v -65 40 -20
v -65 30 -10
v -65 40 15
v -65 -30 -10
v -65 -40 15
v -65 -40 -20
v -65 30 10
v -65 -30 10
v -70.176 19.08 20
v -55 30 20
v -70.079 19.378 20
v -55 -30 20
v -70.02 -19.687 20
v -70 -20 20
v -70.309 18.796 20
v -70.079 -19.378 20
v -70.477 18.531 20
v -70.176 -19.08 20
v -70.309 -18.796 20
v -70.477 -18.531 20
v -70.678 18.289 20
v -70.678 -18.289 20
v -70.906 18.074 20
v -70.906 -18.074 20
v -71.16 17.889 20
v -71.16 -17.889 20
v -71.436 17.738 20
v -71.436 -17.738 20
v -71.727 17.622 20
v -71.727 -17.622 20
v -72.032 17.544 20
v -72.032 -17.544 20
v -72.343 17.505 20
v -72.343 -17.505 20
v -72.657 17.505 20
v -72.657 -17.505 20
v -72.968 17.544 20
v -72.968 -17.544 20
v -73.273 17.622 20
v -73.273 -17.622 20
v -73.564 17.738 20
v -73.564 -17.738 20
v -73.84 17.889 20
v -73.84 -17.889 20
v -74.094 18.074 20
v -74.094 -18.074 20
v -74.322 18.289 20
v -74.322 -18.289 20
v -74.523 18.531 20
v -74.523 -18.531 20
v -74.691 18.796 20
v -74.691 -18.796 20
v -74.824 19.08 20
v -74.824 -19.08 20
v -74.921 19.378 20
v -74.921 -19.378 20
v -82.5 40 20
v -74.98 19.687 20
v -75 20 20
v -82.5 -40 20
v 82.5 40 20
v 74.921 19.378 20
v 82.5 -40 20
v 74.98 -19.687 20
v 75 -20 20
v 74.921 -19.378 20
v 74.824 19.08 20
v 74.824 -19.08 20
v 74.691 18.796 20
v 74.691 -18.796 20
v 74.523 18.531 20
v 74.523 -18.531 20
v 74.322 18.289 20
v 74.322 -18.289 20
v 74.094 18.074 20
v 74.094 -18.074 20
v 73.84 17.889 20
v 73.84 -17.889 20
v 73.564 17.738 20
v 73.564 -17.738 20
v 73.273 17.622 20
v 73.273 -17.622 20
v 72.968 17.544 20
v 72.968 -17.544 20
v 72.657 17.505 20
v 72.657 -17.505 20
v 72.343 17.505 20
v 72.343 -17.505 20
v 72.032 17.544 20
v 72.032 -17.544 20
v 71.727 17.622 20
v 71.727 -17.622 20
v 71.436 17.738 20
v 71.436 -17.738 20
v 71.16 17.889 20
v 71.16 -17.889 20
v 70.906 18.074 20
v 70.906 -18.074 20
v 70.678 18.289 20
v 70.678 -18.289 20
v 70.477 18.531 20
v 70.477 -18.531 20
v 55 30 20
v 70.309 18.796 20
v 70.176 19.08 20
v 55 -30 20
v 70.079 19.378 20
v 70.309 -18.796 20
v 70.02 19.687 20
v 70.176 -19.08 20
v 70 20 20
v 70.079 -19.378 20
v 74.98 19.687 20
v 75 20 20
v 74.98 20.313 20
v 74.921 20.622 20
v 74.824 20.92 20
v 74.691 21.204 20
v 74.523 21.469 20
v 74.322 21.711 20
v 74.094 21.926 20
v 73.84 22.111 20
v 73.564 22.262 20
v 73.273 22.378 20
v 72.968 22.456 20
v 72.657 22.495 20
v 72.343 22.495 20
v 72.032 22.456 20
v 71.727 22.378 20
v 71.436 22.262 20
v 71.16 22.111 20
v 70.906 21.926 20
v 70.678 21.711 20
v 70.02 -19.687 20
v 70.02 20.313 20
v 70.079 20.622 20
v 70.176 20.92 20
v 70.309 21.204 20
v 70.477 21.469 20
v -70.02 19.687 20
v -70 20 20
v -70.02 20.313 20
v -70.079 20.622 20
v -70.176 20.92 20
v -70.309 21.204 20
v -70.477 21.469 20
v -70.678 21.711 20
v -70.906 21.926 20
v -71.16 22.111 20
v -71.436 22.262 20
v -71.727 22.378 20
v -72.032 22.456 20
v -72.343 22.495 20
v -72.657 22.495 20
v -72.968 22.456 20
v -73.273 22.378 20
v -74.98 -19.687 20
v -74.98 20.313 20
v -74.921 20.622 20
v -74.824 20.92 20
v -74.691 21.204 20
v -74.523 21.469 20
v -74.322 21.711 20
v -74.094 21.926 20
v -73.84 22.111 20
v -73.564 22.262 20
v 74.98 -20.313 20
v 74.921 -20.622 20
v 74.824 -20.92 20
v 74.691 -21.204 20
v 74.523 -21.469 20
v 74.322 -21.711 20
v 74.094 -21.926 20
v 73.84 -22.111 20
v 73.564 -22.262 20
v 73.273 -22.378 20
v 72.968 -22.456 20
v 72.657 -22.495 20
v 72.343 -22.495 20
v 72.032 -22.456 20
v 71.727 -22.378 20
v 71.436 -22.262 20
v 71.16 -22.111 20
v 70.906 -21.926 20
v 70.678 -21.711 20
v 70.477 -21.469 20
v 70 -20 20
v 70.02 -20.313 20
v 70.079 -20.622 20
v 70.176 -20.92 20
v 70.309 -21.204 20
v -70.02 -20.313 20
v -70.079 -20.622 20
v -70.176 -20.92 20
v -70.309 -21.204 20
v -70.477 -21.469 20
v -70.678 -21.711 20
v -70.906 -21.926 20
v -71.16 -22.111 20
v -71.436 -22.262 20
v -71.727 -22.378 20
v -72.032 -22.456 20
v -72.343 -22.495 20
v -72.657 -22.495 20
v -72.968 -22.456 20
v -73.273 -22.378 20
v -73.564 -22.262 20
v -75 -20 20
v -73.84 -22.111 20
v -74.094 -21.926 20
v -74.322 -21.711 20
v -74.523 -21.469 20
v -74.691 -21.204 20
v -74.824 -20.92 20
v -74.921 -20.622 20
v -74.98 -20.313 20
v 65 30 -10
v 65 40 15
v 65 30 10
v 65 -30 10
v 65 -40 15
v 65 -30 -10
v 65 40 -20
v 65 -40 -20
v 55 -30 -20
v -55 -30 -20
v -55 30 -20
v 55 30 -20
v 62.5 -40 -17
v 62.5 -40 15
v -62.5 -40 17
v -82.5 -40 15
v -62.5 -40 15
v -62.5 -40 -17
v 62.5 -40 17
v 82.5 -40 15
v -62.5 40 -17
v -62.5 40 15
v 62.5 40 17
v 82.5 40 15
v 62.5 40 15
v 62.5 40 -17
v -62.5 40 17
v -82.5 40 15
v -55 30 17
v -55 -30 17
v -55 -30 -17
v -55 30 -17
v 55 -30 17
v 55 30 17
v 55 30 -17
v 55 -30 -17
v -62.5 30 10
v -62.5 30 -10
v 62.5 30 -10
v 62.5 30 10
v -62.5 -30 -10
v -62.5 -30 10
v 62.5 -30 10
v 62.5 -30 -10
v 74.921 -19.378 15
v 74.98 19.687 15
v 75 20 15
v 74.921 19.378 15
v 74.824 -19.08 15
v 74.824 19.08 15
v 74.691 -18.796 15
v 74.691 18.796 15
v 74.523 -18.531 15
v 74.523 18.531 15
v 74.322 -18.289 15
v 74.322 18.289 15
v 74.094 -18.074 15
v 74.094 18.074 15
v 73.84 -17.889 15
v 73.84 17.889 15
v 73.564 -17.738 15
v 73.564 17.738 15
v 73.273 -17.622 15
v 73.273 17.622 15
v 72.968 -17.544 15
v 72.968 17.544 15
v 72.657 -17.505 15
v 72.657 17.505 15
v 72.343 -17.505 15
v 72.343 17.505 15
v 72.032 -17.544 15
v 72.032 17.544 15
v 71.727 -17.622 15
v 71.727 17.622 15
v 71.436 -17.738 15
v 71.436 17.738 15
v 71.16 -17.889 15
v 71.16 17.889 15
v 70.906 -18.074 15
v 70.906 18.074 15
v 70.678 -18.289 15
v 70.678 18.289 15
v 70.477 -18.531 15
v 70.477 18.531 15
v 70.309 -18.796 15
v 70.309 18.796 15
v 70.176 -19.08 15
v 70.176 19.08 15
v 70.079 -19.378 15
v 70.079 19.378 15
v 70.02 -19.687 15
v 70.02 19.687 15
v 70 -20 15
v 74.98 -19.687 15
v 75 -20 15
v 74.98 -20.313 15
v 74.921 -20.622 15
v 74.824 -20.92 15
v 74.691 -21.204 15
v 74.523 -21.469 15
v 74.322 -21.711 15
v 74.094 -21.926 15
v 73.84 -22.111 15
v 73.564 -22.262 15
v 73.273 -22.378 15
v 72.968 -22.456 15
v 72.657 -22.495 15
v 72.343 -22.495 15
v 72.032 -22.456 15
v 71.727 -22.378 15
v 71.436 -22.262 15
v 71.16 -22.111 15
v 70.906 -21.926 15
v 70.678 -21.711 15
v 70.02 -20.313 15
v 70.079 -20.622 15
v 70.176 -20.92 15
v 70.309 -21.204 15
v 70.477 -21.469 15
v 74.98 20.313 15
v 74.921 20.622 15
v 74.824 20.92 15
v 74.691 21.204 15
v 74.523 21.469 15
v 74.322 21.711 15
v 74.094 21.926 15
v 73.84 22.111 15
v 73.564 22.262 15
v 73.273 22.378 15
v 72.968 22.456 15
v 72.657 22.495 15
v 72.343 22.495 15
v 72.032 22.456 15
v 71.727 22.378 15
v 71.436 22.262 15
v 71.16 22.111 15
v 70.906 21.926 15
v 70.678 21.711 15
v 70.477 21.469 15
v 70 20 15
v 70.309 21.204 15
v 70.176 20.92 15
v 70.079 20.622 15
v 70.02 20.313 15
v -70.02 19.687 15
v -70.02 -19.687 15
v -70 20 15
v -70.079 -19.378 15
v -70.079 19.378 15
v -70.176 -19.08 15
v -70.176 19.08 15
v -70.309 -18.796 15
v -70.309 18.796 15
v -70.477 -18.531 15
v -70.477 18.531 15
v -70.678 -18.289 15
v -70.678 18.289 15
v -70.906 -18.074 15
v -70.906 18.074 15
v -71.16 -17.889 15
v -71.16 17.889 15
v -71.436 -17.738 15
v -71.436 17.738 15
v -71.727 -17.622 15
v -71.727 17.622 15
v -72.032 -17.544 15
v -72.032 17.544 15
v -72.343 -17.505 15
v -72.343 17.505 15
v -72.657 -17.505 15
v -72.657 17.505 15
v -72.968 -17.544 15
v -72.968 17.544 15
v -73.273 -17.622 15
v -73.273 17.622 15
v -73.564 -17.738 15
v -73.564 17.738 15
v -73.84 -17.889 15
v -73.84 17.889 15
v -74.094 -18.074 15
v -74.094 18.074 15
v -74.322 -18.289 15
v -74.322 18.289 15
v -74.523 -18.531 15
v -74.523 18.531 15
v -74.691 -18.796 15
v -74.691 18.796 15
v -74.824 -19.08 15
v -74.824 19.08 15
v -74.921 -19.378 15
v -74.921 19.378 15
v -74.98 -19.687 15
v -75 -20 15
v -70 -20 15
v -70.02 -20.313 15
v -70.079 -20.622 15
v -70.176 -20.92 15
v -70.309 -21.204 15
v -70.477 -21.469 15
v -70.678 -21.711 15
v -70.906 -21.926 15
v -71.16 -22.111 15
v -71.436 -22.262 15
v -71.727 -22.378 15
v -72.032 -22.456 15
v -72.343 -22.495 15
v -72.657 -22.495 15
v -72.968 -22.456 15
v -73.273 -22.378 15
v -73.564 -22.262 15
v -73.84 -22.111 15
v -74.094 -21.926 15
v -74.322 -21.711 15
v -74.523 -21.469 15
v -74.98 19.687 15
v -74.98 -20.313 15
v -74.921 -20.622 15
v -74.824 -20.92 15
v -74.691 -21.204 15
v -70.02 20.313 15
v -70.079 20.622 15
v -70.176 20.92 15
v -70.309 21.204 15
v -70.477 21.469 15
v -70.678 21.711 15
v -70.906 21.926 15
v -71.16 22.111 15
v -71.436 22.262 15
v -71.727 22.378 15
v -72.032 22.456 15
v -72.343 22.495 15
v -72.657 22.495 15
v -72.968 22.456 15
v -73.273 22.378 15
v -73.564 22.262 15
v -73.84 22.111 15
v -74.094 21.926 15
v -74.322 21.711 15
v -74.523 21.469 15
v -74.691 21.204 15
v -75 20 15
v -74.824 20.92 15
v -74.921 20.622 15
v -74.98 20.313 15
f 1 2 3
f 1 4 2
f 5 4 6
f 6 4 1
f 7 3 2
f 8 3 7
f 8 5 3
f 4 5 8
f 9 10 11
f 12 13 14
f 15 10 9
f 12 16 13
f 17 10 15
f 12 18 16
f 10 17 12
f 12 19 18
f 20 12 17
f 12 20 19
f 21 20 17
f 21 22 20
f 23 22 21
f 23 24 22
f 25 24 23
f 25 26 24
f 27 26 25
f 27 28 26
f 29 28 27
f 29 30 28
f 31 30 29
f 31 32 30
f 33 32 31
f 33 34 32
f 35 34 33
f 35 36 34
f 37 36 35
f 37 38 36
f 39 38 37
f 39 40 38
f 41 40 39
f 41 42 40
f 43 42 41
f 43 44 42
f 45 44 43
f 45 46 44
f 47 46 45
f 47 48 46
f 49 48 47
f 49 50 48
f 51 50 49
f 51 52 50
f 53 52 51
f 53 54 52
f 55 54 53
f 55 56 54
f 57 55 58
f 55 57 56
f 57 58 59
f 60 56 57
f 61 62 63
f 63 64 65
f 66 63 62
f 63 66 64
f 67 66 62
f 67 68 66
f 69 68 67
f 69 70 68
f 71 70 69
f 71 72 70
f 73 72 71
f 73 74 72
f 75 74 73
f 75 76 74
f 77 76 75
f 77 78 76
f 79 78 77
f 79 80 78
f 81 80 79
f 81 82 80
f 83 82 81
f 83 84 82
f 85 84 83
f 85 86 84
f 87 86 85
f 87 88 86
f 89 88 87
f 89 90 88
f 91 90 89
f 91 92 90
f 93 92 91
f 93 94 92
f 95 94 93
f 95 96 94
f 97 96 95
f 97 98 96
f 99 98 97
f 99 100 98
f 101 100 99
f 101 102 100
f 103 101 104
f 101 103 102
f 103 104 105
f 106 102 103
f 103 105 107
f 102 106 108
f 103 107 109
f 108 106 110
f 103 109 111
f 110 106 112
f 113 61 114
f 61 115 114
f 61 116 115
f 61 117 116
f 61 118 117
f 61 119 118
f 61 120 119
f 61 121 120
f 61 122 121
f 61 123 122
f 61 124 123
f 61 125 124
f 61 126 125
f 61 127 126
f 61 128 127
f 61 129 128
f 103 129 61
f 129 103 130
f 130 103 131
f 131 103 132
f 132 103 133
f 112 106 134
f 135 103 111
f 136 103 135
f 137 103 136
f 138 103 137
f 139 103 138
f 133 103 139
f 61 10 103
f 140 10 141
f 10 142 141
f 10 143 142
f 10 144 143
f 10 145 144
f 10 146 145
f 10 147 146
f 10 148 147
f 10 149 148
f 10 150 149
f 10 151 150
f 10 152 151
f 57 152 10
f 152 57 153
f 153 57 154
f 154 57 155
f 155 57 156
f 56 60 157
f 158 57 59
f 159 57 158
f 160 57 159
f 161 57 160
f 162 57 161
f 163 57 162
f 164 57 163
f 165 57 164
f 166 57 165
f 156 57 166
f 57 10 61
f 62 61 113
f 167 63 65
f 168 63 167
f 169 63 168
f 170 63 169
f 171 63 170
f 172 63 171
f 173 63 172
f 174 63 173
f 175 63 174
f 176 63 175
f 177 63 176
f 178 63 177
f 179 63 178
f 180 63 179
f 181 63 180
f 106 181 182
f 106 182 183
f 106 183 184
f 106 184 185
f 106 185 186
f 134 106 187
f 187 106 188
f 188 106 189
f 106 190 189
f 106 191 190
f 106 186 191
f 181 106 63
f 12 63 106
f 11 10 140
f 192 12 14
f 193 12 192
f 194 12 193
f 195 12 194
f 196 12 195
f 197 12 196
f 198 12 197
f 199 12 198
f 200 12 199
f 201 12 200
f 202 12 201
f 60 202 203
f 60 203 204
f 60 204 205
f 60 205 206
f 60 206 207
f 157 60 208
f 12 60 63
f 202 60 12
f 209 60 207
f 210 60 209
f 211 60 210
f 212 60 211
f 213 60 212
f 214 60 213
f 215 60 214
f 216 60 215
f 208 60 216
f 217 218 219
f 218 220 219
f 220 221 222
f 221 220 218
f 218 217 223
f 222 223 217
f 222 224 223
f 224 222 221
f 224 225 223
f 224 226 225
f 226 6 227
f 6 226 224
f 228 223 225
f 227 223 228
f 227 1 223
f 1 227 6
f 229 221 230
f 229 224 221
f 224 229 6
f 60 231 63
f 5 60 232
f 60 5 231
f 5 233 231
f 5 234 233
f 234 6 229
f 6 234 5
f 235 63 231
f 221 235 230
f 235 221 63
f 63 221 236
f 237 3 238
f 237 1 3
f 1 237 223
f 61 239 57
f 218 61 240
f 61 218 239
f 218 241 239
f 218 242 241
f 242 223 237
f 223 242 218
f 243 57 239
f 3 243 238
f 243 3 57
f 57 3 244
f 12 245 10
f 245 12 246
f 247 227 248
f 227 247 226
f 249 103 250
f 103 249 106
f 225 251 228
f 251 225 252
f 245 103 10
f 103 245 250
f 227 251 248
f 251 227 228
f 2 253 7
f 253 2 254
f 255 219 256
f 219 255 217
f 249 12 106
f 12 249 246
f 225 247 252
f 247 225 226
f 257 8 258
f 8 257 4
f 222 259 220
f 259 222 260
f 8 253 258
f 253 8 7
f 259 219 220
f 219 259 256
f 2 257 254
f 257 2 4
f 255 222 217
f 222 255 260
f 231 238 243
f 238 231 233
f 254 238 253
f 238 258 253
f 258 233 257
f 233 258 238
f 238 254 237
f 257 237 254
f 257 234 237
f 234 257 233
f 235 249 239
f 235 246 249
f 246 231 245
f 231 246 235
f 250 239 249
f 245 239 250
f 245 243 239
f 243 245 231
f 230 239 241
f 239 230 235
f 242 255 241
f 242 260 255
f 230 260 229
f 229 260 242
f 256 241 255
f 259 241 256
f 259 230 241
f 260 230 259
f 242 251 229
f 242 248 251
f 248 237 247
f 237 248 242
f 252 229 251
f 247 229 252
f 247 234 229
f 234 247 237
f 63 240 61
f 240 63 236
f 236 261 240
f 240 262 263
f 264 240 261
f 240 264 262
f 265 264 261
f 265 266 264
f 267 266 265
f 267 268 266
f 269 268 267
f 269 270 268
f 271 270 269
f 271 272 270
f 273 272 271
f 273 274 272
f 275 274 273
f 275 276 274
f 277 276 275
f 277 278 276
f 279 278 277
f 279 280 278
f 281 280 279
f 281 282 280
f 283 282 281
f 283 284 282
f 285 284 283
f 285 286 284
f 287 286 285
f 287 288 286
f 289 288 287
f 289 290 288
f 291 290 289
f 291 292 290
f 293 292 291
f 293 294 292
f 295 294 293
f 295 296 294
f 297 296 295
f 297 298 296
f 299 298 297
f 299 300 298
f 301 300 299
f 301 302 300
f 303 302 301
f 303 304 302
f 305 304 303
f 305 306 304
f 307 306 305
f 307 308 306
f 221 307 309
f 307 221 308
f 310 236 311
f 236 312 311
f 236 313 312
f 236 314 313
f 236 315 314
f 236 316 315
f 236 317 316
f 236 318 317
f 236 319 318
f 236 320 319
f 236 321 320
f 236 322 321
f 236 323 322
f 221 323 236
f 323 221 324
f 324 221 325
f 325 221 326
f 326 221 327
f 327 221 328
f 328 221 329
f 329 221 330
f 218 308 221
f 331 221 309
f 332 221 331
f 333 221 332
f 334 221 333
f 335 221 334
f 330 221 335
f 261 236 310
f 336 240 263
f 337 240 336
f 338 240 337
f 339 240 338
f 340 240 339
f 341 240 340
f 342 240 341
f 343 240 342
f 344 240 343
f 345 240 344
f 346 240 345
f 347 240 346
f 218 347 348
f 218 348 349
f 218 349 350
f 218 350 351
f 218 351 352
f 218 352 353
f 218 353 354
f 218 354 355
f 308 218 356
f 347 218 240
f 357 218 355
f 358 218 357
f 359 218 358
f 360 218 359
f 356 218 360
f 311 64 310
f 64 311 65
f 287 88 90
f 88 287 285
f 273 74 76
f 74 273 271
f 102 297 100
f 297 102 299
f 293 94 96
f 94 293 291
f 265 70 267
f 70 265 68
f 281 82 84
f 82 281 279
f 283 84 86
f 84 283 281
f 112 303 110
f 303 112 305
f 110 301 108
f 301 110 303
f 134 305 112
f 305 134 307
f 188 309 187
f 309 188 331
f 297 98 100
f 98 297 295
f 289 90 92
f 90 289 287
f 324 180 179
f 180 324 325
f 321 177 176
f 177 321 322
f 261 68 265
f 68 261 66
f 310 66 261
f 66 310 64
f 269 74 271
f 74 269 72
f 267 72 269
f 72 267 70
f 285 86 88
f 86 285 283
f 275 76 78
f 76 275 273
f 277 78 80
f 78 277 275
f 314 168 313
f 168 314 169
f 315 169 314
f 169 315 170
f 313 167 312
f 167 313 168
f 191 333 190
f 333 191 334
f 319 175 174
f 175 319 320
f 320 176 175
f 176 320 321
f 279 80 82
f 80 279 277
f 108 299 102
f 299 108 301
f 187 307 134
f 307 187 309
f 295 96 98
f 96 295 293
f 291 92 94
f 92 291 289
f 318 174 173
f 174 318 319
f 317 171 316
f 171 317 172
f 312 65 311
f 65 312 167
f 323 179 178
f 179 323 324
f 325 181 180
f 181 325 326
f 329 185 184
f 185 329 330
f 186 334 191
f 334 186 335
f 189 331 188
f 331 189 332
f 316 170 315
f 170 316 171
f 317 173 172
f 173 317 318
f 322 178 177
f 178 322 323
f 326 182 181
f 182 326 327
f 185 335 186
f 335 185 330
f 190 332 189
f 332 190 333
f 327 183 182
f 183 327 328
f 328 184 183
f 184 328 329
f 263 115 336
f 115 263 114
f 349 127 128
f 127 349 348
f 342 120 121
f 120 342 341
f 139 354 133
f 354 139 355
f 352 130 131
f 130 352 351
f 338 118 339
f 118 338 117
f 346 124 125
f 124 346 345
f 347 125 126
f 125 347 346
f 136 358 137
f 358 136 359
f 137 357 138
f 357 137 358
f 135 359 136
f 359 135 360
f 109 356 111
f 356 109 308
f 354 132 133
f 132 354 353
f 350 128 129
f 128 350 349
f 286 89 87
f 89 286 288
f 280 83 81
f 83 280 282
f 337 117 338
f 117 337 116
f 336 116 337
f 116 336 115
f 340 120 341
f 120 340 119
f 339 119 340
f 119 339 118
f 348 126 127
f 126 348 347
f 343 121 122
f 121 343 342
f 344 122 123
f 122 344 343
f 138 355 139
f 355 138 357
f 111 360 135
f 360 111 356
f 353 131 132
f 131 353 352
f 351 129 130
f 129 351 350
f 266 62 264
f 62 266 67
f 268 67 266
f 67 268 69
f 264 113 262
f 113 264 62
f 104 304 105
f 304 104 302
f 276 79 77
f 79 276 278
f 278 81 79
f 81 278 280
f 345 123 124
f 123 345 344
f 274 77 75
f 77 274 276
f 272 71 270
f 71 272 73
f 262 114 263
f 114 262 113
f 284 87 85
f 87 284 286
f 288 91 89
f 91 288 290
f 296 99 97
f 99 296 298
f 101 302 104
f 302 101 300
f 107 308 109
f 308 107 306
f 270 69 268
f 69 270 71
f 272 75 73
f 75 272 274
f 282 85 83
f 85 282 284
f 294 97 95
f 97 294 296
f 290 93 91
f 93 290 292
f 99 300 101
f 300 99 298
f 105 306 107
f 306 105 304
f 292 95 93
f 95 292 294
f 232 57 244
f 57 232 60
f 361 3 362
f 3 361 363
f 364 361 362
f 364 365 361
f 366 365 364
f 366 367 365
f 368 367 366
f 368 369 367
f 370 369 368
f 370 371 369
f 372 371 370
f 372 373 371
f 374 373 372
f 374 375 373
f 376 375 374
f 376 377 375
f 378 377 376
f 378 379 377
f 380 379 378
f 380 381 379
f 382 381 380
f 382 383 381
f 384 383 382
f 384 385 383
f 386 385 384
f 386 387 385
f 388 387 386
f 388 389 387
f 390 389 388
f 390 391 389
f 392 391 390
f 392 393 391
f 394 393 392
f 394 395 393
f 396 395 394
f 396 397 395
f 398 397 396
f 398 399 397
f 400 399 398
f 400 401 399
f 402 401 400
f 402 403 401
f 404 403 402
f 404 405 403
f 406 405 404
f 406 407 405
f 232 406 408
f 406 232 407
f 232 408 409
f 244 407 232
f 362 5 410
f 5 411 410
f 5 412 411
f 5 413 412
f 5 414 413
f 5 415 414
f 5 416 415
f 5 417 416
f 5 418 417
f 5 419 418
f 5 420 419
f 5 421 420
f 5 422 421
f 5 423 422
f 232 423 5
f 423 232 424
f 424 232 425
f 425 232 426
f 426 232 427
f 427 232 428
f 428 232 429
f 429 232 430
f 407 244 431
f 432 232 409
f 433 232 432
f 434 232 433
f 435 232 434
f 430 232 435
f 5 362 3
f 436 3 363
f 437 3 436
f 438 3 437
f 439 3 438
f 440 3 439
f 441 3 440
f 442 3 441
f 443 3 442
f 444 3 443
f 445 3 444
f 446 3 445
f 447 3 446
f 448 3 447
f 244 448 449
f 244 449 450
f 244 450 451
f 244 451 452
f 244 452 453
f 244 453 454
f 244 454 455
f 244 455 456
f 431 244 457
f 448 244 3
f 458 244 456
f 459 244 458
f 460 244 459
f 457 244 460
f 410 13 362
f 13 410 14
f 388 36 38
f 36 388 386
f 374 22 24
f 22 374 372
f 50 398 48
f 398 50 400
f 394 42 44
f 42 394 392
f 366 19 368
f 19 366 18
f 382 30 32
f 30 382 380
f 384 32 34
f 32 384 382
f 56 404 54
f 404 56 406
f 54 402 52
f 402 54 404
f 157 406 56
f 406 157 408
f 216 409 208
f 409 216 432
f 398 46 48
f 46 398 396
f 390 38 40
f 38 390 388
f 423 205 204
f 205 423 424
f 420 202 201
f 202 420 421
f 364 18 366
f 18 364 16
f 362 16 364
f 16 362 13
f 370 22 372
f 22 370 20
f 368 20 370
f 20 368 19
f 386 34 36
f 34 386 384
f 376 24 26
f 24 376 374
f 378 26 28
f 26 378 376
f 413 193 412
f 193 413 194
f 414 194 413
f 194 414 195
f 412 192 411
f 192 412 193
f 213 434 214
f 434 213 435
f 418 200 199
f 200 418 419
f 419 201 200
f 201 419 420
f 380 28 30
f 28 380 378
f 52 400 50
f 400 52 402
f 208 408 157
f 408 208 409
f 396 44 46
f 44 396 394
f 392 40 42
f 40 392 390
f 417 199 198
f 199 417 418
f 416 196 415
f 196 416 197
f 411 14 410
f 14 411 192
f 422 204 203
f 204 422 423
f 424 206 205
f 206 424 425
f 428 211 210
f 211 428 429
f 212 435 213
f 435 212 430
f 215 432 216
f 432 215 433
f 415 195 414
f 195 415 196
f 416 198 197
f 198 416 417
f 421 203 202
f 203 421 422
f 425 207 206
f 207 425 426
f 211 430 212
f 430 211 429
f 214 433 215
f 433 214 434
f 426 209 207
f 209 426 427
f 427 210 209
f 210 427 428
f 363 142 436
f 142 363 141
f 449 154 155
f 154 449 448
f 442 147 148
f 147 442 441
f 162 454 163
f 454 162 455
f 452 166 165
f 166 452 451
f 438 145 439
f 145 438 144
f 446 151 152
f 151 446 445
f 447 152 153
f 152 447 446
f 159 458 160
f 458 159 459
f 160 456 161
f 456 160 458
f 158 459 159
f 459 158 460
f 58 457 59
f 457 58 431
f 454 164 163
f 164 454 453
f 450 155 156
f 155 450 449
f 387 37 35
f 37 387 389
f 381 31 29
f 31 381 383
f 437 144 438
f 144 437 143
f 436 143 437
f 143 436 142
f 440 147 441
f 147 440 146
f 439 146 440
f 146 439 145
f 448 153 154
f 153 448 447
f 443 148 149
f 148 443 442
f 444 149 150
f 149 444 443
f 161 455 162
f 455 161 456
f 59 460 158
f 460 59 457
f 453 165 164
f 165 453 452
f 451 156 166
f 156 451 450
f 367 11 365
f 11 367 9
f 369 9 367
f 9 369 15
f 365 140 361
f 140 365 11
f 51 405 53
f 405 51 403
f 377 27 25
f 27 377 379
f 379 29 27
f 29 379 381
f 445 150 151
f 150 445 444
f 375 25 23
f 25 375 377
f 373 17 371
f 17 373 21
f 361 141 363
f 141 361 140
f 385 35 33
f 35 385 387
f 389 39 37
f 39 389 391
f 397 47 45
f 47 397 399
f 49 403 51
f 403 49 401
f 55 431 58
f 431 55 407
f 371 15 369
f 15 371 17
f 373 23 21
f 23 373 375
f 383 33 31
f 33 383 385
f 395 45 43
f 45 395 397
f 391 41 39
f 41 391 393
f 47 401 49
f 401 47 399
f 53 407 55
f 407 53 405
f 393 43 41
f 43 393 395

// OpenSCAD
union() {
    $fn = 50;
    difference() {
        cube([130, 80, 40], true);
        cube([110, 60, 50], true);
        cube([140, 60, 20], true);
        cube([125, 115, 34], true);
    }
    translate([125/2+10,0,15]){
        borehole();
    }
    translate([-125/2-10,0,15]){
        borehole();
    }
}


module borehole() {
    x = 20;
    y = 80;
    z = 5;
    hole = 5;
    translate([-x/2,-y/2,0]) {
        difference() {
            cube([x,y,z]);
            translate([x/2,y/4,0]) {
                cylinder(d=hole,h=z);
            }
            translate([x/2,y/4*3,0]) {
                cylinder(d=hole,h=z);
            }
        }
    }
}
